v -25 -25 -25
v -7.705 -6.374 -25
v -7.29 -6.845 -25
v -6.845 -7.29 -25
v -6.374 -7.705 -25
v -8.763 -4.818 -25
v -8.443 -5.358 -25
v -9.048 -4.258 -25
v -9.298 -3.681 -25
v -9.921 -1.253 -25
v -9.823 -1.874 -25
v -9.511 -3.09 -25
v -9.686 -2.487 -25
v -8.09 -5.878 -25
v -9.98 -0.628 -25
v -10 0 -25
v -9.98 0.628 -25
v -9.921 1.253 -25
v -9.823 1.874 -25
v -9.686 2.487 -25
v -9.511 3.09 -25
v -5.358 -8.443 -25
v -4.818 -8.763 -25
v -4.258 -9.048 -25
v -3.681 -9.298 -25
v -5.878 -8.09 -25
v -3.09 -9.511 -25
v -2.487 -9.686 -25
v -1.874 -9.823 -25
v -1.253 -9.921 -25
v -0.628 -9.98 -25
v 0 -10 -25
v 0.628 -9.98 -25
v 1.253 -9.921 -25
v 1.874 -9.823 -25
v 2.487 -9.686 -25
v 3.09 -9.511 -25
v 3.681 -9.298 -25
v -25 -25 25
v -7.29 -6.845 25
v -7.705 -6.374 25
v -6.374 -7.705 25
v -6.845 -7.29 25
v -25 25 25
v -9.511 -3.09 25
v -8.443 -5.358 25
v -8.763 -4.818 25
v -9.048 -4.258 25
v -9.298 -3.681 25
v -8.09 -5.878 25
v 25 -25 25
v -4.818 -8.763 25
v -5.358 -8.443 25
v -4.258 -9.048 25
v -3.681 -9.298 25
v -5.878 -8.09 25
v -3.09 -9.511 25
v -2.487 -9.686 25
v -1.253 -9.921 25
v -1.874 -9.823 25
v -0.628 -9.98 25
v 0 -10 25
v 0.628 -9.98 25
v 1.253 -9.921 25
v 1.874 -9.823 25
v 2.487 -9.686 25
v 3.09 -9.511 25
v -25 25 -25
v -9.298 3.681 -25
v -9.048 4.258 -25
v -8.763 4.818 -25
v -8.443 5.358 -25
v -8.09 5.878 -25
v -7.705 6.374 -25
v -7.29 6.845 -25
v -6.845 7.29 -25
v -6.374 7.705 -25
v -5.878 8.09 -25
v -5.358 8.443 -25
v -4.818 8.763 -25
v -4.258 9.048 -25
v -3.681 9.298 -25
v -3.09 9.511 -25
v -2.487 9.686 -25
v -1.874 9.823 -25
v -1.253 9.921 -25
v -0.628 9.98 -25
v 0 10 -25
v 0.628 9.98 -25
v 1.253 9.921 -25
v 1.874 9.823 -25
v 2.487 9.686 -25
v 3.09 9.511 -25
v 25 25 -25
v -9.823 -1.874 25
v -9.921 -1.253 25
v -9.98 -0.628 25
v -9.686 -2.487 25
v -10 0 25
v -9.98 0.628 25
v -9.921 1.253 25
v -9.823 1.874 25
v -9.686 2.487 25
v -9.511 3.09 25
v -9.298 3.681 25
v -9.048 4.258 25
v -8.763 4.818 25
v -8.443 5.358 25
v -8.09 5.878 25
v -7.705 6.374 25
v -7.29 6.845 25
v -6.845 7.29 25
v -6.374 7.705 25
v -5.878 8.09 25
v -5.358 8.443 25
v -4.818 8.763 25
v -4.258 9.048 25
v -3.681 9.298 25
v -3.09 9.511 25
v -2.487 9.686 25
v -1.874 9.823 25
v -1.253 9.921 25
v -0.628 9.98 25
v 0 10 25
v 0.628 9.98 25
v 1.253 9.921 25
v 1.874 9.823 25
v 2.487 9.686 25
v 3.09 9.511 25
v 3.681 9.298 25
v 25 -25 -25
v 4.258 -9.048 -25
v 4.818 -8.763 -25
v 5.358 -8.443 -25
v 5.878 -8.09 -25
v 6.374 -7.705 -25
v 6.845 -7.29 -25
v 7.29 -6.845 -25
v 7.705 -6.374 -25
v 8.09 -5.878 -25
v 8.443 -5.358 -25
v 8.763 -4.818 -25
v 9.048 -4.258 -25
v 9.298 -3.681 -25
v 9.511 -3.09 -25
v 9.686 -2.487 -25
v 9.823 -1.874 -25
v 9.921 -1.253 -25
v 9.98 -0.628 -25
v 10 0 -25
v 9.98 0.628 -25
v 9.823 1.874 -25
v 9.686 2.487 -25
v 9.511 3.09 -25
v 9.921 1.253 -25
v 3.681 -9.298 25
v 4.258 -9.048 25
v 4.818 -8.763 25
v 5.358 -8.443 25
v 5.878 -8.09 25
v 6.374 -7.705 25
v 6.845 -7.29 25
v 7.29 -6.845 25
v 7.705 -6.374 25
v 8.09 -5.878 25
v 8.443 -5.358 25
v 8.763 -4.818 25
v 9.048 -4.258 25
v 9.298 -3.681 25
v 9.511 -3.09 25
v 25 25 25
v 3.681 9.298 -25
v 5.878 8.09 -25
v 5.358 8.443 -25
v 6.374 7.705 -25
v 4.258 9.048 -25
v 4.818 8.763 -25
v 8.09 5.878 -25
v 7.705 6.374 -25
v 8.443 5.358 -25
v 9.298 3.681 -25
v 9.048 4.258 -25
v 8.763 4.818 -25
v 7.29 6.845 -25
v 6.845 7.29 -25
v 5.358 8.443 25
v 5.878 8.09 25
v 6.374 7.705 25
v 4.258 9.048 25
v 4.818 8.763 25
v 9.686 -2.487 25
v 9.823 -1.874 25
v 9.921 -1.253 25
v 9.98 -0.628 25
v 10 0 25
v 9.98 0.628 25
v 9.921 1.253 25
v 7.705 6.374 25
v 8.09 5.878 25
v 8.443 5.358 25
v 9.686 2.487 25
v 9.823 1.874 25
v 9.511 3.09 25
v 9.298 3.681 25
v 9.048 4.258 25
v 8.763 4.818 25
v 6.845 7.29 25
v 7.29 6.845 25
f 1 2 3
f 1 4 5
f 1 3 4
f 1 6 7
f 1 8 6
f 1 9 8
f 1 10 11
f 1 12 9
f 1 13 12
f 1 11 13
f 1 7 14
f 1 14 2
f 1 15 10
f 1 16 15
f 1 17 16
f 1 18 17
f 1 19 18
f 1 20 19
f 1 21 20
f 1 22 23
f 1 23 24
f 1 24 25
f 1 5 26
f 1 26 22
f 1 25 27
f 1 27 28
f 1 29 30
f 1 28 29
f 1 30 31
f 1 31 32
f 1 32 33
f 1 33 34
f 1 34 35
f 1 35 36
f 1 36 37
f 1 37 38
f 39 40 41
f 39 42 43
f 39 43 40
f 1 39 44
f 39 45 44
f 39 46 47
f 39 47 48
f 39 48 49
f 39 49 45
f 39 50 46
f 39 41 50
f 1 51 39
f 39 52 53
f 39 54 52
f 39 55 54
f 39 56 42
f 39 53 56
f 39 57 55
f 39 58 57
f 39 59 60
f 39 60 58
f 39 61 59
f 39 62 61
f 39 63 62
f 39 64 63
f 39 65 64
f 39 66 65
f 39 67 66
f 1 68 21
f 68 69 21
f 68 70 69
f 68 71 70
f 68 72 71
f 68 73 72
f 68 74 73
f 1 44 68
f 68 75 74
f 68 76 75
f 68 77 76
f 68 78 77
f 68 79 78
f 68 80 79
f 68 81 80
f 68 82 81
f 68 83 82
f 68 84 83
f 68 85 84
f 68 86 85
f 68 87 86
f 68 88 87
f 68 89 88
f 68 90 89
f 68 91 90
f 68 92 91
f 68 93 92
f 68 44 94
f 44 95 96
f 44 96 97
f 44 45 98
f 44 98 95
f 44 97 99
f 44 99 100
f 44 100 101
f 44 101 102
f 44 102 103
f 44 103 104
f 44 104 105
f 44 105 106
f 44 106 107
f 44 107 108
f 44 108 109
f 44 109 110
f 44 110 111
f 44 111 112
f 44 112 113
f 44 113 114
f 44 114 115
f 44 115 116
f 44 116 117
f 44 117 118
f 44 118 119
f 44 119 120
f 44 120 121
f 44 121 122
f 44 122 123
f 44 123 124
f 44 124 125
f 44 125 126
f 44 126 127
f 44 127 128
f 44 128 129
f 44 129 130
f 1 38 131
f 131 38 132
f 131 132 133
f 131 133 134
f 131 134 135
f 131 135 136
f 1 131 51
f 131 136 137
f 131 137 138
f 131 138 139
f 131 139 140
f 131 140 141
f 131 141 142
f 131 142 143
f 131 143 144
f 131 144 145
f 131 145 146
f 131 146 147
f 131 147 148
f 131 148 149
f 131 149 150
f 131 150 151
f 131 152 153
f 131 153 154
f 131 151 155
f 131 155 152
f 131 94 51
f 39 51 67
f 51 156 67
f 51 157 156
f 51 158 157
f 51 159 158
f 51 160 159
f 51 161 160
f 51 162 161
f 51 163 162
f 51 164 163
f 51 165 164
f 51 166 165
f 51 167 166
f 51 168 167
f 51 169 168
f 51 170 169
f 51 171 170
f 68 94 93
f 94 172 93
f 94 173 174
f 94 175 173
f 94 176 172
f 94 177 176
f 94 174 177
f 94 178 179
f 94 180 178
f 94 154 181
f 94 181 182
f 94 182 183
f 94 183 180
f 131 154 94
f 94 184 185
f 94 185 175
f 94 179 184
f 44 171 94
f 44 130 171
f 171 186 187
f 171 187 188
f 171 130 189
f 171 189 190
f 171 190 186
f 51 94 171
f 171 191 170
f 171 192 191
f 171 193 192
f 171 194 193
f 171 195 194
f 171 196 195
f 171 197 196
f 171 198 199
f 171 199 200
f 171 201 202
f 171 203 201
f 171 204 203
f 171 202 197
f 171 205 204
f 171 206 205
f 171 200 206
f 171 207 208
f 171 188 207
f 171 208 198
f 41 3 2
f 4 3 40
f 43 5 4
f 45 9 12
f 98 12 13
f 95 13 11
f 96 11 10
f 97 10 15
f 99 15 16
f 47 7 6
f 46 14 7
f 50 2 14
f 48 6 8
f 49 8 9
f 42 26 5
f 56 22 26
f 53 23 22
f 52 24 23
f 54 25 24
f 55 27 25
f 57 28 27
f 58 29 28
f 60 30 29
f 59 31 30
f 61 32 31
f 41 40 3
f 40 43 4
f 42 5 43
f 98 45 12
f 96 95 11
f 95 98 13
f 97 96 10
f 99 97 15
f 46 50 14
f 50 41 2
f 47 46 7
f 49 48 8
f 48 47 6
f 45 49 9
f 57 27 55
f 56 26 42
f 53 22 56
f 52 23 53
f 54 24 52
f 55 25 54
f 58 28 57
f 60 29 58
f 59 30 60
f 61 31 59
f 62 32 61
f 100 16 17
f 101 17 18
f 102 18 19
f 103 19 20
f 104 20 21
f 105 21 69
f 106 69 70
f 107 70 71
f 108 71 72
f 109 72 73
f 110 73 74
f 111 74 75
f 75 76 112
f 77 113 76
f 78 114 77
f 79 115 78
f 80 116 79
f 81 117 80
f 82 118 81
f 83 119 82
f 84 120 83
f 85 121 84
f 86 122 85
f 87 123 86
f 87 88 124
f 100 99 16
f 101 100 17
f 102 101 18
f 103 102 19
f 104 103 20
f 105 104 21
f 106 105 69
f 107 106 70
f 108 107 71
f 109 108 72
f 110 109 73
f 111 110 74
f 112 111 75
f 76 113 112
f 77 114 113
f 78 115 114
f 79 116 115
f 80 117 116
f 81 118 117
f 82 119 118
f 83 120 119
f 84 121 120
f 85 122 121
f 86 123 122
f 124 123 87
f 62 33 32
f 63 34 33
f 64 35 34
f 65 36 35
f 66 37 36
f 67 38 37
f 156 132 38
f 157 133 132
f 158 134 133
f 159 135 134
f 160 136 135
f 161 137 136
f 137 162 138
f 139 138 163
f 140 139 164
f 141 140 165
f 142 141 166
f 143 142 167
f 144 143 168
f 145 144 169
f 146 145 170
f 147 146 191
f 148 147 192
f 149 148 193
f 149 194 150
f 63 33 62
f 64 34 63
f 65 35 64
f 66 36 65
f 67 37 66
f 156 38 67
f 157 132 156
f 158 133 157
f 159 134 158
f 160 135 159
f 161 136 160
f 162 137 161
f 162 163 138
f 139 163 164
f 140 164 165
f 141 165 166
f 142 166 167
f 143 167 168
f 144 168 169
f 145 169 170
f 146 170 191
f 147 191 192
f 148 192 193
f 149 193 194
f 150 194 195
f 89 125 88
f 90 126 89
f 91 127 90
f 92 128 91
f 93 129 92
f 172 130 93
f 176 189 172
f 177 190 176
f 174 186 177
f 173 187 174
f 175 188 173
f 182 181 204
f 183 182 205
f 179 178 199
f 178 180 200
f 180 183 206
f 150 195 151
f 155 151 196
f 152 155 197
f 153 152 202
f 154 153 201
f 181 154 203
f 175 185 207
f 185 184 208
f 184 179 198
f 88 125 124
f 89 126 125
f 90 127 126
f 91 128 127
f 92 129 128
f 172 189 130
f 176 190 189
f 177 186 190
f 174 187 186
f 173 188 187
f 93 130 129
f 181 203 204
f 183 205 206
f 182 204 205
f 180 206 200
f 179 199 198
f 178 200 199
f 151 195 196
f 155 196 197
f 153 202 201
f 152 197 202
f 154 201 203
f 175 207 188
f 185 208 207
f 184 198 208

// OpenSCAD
$fn = 100;

difference() {
    // 50mm角の立方体（中央配置）
    cube(50, center = true);
    
    // z軸方向の貫通穴（直径20mm、高さは貫通させるために少し長めの52mmに設定）
    cylinder(h = 52, d = 20, center = true);
}
